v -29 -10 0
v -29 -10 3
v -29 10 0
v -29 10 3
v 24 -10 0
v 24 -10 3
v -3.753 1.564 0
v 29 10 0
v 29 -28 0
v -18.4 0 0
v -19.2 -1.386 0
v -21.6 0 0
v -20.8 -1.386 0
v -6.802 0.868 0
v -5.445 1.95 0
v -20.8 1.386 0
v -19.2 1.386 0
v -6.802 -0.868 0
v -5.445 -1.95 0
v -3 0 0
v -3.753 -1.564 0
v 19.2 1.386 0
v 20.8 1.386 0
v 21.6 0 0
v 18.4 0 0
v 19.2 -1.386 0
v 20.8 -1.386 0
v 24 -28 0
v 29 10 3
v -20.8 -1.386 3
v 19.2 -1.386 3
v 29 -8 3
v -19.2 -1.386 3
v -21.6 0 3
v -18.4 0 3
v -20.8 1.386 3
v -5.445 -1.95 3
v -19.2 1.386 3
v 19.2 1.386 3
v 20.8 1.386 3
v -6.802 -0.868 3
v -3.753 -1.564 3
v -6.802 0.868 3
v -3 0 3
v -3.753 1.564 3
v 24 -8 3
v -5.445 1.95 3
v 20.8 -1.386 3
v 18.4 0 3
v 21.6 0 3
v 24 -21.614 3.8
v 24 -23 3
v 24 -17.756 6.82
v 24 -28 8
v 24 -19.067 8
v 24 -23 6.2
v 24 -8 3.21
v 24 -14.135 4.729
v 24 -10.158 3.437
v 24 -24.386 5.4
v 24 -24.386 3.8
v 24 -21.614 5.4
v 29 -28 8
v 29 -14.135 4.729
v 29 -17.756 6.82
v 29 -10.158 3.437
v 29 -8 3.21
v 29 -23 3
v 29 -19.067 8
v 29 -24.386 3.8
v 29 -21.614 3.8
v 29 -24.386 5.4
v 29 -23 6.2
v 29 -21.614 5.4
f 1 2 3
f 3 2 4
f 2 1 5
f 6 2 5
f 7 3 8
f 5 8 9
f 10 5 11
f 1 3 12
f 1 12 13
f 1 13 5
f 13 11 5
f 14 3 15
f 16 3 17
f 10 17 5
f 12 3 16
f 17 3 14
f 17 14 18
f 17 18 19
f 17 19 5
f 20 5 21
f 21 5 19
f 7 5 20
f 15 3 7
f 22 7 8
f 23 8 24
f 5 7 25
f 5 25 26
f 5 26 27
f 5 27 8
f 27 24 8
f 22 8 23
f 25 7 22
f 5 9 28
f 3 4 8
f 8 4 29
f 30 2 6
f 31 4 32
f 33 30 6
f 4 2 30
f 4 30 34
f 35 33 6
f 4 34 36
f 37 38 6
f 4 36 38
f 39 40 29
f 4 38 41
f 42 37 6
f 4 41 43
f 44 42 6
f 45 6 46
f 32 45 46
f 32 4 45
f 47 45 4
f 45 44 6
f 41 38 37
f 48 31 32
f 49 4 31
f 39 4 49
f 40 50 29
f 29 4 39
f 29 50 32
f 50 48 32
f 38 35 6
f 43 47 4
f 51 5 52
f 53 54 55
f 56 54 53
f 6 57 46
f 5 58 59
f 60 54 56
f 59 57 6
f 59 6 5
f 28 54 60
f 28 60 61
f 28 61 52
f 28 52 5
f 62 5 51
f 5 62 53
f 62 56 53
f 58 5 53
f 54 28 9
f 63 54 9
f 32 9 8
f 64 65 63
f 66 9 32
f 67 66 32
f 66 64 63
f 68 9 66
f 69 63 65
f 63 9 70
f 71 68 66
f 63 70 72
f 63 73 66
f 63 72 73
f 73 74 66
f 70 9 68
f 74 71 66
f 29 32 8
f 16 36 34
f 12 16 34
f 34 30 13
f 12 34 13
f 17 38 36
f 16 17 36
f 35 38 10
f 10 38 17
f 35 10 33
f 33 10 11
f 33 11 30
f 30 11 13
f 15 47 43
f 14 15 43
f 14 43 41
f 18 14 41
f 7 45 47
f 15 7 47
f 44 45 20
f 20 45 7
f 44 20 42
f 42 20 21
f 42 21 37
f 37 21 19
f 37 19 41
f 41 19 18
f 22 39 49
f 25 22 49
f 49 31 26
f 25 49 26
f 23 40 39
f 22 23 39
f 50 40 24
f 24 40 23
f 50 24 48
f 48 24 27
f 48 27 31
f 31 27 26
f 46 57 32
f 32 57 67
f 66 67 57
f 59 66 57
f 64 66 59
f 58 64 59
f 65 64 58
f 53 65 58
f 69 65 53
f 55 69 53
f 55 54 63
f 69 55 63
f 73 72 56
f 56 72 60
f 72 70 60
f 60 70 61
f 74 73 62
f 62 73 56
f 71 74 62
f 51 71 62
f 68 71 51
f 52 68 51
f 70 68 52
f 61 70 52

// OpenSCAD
difference(){union(){translate([0,0,1.5]) cube([58,20,3], center=true);
translate([-2.5+58/2,-18,4]) cube([5,20,8], center=true);
}
translate([20,-23,1.6+3]) rotate([0,90,0]) cylinder(r=1.6, h=100);

translate([20,-23+17,23]) rotate([0,90,0]) cylinder(r=20, h=100);


translate([-20+15,0,-1]) cylinder(r=2, h=5);

translate([20,0,-1]) cylinder(r=1.6, h=5);
translate([-20,0,-1]) cylinder(r=1.6, h=5);}
